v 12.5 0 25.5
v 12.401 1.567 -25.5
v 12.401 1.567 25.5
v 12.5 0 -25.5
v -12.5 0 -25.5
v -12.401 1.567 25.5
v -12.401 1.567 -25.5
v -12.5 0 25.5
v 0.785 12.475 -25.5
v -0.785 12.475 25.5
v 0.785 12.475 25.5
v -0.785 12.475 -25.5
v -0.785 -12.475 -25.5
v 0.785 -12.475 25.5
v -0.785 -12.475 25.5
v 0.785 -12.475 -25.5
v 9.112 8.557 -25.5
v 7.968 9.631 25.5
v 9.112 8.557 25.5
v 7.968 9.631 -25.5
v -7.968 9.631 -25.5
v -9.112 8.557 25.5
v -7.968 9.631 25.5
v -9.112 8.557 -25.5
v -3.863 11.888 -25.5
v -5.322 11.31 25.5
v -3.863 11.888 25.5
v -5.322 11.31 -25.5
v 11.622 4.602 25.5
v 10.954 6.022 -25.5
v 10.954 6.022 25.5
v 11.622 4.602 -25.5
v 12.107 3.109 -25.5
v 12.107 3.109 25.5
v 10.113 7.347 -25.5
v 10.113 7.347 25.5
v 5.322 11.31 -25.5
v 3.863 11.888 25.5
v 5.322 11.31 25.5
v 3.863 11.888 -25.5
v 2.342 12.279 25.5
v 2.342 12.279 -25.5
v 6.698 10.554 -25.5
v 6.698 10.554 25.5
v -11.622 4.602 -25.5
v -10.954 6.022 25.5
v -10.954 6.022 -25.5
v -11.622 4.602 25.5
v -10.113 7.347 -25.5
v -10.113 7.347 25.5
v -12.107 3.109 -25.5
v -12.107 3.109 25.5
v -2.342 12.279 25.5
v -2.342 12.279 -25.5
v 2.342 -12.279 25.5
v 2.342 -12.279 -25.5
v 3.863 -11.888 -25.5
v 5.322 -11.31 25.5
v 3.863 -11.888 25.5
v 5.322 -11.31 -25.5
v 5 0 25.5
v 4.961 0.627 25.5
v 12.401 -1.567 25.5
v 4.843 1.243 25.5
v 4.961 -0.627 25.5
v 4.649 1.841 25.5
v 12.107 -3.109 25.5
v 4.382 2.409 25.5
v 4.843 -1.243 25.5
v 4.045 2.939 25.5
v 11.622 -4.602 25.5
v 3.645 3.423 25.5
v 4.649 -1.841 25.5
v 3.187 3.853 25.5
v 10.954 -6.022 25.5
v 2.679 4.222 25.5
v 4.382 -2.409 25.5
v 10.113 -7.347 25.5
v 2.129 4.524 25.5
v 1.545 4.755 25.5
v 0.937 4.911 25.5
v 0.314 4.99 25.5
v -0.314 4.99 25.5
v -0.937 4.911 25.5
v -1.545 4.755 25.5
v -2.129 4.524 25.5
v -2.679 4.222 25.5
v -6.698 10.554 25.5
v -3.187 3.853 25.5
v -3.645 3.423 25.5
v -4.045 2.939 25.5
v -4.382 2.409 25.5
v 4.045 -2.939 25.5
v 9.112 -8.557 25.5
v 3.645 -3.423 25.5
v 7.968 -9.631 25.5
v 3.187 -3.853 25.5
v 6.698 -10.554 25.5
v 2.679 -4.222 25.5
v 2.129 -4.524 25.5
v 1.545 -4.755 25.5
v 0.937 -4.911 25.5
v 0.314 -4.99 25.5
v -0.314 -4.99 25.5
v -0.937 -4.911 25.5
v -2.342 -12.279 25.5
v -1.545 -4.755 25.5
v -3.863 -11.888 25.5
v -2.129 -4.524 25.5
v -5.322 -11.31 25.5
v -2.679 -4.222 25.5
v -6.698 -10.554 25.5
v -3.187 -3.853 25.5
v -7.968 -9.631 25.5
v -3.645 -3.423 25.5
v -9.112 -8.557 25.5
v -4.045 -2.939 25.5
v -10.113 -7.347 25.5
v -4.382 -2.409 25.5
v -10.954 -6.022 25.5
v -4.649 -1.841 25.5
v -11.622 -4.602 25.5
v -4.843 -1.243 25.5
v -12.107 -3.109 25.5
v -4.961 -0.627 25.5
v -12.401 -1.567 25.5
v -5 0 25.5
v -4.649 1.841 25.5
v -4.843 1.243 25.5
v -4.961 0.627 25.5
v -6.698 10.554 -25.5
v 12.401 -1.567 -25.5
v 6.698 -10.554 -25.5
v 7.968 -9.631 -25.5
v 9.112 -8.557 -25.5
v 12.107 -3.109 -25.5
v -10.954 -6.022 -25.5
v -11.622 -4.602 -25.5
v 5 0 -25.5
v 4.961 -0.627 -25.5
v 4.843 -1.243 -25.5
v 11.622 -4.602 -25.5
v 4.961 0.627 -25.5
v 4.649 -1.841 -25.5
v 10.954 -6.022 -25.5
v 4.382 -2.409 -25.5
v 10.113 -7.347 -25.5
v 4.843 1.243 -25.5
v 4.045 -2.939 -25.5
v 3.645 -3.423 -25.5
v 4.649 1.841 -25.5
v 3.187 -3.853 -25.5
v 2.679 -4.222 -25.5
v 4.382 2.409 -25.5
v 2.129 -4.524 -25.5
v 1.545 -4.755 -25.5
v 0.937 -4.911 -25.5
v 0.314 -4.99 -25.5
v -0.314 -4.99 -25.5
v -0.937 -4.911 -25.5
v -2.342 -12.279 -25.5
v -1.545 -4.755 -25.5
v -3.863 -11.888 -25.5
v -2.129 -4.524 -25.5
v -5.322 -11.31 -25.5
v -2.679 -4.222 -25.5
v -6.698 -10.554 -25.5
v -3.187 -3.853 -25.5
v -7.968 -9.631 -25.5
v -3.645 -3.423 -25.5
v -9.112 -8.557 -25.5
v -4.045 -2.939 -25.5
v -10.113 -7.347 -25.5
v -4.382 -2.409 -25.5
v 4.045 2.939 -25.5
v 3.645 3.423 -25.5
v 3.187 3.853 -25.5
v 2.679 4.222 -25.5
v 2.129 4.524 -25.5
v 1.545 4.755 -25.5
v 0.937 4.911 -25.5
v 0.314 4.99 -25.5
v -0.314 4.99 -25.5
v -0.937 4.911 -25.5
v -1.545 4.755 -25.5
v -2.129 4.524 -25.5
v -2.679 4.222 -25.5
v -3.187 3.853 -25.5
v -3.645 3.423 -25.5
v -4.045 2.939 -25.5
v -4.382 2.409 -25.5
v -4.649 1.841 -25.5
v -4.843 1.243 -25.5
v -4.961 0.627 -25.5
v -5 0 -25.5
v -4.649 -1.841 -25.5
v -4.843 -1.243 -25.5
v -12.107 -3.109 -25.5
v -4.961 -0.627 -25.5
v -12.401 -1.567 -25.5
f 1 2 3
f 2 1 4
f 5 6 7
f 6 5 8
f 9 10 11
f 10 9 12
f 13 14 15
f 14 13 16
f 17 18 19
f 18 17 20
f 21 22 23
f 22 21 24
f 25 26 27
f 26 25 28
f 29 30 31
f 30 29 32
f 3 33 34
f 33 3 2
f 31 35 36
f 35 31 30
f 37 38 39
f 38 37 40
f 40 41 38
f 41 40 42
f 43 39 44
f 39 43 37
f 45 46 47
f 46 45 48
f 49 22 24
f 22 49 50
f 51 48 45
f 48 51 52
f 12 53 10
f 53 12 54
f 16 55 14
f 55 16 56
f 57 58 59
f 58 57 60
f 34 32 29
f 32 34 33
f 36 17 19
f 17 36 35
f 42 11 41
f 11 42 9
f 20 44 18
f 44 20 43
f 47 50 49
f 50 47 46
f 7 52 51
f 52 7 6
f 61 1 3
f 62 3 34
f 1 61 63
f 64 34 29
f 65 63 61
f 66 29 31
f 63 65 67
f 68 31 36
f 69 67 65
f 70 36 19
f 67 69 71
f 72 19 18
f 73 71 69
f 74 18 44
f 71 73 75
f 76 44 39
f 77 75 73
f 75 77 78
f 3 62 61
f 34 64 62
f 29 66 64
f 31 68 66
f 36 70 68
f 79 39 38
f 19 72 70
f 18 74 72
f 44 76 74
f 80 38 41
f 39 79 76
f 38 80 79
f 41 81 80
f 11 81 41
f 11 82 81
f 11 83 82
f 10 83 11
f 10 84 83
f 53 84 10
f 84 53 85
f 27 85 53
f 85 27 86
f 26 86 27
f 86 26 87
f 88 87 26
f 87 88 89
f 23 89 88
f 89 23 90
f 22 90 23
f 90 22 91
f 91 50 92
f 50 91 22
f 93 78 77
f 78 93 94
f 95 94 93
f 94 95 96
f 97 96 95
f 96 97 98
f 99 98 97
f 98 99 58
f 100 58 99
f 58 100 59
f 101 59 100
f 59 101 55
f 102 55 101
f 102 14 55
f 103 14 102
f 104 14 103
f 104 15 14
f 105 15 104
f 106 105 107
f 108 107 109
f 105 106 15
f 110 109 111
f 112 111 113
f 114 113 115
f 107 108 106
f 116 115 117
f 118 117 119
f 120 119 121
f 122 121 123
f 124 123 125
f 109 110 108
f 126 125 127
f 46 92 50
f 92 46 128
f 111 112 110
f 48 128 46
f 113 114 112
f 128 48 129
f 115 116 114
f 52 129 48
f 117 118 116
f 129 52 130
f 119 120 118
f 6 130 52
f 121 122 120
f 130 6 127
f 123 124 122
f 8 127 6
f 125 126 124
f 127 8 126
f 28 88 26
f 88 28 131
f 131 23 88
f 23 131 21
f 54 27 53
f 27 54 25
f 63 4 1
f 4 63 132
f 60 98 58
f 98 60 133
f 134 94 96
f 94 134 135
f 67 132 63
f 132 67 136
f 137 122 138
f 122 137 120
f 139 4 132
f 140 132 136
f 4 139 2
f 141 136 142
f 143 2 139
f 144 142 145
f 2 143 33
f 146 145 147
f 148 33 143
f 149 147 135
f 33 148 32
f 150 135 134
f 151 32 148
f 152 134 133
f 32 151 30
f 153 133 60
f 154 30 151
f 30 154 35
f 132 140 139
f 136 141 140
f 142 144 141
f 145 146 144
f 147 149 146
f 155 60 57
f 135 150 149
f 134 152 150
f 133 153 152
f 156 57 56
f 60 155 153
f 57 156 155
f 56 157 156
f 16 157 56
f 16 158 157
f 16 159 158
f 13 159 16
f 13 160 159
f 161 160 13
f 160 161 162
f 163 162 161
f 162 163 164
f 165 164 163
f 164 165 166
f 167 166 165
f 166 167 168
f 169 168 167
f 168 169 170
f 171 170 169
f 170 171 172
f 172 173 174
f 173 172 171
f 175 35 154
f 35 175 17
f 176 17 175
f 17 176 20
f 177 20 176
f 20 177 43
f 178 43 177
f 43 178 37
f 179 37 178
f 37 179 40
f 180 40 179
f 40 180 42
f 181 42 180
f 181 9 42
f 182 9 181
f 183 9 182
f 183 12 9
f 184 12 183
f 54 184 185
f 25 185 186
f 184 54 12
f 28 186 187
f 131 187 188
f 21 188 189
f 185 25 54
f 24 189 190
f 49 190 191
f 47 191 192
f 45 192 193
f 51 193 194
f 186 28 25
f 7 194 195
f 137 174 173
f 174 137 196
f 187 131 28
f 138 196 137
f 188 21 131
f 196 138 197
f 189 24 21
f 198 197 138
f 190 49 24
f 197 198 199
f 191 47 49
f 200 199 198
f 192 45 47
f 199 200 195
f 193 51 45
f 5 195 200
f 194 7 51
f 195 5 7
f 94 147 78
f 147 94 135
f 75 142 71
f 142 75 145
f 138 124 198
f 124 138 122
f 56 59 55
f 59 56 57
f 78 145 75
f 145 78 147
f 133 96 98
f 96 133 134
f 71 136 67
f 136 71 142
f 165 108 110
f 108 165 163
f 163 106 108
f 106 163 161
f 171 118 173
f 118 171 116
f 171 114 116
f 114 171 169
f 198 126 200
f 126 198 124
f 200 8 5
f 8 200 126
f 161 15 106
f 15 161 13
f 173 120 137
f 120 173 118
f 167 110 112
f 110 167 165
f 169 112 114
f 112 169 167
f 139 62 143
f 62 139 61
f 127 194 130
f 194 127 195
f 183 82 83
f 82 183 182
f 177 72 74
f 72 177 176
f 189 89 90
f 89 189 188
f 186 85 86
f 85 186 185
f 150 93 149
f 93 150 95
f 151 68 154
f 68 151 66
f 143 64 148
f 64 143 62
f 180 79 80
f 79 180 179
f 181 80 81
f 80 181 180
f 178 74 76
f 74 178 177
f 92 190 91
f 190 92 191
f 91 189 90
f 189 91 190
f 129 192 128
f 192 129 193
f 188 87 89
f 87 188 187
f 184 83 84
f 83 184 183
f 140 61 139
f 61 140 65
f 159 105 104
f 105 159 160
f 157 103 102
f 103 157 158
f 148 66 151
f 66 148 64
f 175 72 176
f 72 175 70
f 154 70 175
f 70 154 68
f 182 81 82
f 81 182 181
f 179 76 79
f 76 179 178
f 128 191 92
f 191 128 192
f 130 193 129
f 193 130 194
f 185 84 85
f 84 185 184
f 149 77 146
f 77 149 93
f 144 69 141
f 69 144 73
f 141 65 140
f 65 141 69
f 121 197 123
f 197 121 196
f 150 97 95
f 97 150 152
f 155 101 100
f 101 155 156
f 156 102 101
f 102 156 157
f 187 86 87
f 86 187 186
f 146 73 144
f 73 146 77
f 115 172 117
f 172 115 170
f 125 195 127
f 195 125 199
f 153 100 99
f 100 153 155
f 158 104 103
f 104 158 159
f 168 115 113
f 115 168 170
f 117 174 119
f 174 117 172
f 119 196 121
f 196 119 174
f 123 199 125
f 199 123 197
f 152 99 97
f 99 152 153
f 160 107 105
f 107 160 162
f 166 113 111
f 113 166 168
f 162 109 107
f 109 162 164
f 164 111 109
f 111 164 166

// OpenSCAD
$fn = 50;


difference() {
	union() {
		translate(v = [0, 0, -25.5000000000]) {
			cylinder(h = 51, r = 12.5000000000);
		}
	}
	union() {
		translate(v = [0, 0, -100.0000000000]) {
			cylinder(h = 200, r = 5);
		}
	}
}
